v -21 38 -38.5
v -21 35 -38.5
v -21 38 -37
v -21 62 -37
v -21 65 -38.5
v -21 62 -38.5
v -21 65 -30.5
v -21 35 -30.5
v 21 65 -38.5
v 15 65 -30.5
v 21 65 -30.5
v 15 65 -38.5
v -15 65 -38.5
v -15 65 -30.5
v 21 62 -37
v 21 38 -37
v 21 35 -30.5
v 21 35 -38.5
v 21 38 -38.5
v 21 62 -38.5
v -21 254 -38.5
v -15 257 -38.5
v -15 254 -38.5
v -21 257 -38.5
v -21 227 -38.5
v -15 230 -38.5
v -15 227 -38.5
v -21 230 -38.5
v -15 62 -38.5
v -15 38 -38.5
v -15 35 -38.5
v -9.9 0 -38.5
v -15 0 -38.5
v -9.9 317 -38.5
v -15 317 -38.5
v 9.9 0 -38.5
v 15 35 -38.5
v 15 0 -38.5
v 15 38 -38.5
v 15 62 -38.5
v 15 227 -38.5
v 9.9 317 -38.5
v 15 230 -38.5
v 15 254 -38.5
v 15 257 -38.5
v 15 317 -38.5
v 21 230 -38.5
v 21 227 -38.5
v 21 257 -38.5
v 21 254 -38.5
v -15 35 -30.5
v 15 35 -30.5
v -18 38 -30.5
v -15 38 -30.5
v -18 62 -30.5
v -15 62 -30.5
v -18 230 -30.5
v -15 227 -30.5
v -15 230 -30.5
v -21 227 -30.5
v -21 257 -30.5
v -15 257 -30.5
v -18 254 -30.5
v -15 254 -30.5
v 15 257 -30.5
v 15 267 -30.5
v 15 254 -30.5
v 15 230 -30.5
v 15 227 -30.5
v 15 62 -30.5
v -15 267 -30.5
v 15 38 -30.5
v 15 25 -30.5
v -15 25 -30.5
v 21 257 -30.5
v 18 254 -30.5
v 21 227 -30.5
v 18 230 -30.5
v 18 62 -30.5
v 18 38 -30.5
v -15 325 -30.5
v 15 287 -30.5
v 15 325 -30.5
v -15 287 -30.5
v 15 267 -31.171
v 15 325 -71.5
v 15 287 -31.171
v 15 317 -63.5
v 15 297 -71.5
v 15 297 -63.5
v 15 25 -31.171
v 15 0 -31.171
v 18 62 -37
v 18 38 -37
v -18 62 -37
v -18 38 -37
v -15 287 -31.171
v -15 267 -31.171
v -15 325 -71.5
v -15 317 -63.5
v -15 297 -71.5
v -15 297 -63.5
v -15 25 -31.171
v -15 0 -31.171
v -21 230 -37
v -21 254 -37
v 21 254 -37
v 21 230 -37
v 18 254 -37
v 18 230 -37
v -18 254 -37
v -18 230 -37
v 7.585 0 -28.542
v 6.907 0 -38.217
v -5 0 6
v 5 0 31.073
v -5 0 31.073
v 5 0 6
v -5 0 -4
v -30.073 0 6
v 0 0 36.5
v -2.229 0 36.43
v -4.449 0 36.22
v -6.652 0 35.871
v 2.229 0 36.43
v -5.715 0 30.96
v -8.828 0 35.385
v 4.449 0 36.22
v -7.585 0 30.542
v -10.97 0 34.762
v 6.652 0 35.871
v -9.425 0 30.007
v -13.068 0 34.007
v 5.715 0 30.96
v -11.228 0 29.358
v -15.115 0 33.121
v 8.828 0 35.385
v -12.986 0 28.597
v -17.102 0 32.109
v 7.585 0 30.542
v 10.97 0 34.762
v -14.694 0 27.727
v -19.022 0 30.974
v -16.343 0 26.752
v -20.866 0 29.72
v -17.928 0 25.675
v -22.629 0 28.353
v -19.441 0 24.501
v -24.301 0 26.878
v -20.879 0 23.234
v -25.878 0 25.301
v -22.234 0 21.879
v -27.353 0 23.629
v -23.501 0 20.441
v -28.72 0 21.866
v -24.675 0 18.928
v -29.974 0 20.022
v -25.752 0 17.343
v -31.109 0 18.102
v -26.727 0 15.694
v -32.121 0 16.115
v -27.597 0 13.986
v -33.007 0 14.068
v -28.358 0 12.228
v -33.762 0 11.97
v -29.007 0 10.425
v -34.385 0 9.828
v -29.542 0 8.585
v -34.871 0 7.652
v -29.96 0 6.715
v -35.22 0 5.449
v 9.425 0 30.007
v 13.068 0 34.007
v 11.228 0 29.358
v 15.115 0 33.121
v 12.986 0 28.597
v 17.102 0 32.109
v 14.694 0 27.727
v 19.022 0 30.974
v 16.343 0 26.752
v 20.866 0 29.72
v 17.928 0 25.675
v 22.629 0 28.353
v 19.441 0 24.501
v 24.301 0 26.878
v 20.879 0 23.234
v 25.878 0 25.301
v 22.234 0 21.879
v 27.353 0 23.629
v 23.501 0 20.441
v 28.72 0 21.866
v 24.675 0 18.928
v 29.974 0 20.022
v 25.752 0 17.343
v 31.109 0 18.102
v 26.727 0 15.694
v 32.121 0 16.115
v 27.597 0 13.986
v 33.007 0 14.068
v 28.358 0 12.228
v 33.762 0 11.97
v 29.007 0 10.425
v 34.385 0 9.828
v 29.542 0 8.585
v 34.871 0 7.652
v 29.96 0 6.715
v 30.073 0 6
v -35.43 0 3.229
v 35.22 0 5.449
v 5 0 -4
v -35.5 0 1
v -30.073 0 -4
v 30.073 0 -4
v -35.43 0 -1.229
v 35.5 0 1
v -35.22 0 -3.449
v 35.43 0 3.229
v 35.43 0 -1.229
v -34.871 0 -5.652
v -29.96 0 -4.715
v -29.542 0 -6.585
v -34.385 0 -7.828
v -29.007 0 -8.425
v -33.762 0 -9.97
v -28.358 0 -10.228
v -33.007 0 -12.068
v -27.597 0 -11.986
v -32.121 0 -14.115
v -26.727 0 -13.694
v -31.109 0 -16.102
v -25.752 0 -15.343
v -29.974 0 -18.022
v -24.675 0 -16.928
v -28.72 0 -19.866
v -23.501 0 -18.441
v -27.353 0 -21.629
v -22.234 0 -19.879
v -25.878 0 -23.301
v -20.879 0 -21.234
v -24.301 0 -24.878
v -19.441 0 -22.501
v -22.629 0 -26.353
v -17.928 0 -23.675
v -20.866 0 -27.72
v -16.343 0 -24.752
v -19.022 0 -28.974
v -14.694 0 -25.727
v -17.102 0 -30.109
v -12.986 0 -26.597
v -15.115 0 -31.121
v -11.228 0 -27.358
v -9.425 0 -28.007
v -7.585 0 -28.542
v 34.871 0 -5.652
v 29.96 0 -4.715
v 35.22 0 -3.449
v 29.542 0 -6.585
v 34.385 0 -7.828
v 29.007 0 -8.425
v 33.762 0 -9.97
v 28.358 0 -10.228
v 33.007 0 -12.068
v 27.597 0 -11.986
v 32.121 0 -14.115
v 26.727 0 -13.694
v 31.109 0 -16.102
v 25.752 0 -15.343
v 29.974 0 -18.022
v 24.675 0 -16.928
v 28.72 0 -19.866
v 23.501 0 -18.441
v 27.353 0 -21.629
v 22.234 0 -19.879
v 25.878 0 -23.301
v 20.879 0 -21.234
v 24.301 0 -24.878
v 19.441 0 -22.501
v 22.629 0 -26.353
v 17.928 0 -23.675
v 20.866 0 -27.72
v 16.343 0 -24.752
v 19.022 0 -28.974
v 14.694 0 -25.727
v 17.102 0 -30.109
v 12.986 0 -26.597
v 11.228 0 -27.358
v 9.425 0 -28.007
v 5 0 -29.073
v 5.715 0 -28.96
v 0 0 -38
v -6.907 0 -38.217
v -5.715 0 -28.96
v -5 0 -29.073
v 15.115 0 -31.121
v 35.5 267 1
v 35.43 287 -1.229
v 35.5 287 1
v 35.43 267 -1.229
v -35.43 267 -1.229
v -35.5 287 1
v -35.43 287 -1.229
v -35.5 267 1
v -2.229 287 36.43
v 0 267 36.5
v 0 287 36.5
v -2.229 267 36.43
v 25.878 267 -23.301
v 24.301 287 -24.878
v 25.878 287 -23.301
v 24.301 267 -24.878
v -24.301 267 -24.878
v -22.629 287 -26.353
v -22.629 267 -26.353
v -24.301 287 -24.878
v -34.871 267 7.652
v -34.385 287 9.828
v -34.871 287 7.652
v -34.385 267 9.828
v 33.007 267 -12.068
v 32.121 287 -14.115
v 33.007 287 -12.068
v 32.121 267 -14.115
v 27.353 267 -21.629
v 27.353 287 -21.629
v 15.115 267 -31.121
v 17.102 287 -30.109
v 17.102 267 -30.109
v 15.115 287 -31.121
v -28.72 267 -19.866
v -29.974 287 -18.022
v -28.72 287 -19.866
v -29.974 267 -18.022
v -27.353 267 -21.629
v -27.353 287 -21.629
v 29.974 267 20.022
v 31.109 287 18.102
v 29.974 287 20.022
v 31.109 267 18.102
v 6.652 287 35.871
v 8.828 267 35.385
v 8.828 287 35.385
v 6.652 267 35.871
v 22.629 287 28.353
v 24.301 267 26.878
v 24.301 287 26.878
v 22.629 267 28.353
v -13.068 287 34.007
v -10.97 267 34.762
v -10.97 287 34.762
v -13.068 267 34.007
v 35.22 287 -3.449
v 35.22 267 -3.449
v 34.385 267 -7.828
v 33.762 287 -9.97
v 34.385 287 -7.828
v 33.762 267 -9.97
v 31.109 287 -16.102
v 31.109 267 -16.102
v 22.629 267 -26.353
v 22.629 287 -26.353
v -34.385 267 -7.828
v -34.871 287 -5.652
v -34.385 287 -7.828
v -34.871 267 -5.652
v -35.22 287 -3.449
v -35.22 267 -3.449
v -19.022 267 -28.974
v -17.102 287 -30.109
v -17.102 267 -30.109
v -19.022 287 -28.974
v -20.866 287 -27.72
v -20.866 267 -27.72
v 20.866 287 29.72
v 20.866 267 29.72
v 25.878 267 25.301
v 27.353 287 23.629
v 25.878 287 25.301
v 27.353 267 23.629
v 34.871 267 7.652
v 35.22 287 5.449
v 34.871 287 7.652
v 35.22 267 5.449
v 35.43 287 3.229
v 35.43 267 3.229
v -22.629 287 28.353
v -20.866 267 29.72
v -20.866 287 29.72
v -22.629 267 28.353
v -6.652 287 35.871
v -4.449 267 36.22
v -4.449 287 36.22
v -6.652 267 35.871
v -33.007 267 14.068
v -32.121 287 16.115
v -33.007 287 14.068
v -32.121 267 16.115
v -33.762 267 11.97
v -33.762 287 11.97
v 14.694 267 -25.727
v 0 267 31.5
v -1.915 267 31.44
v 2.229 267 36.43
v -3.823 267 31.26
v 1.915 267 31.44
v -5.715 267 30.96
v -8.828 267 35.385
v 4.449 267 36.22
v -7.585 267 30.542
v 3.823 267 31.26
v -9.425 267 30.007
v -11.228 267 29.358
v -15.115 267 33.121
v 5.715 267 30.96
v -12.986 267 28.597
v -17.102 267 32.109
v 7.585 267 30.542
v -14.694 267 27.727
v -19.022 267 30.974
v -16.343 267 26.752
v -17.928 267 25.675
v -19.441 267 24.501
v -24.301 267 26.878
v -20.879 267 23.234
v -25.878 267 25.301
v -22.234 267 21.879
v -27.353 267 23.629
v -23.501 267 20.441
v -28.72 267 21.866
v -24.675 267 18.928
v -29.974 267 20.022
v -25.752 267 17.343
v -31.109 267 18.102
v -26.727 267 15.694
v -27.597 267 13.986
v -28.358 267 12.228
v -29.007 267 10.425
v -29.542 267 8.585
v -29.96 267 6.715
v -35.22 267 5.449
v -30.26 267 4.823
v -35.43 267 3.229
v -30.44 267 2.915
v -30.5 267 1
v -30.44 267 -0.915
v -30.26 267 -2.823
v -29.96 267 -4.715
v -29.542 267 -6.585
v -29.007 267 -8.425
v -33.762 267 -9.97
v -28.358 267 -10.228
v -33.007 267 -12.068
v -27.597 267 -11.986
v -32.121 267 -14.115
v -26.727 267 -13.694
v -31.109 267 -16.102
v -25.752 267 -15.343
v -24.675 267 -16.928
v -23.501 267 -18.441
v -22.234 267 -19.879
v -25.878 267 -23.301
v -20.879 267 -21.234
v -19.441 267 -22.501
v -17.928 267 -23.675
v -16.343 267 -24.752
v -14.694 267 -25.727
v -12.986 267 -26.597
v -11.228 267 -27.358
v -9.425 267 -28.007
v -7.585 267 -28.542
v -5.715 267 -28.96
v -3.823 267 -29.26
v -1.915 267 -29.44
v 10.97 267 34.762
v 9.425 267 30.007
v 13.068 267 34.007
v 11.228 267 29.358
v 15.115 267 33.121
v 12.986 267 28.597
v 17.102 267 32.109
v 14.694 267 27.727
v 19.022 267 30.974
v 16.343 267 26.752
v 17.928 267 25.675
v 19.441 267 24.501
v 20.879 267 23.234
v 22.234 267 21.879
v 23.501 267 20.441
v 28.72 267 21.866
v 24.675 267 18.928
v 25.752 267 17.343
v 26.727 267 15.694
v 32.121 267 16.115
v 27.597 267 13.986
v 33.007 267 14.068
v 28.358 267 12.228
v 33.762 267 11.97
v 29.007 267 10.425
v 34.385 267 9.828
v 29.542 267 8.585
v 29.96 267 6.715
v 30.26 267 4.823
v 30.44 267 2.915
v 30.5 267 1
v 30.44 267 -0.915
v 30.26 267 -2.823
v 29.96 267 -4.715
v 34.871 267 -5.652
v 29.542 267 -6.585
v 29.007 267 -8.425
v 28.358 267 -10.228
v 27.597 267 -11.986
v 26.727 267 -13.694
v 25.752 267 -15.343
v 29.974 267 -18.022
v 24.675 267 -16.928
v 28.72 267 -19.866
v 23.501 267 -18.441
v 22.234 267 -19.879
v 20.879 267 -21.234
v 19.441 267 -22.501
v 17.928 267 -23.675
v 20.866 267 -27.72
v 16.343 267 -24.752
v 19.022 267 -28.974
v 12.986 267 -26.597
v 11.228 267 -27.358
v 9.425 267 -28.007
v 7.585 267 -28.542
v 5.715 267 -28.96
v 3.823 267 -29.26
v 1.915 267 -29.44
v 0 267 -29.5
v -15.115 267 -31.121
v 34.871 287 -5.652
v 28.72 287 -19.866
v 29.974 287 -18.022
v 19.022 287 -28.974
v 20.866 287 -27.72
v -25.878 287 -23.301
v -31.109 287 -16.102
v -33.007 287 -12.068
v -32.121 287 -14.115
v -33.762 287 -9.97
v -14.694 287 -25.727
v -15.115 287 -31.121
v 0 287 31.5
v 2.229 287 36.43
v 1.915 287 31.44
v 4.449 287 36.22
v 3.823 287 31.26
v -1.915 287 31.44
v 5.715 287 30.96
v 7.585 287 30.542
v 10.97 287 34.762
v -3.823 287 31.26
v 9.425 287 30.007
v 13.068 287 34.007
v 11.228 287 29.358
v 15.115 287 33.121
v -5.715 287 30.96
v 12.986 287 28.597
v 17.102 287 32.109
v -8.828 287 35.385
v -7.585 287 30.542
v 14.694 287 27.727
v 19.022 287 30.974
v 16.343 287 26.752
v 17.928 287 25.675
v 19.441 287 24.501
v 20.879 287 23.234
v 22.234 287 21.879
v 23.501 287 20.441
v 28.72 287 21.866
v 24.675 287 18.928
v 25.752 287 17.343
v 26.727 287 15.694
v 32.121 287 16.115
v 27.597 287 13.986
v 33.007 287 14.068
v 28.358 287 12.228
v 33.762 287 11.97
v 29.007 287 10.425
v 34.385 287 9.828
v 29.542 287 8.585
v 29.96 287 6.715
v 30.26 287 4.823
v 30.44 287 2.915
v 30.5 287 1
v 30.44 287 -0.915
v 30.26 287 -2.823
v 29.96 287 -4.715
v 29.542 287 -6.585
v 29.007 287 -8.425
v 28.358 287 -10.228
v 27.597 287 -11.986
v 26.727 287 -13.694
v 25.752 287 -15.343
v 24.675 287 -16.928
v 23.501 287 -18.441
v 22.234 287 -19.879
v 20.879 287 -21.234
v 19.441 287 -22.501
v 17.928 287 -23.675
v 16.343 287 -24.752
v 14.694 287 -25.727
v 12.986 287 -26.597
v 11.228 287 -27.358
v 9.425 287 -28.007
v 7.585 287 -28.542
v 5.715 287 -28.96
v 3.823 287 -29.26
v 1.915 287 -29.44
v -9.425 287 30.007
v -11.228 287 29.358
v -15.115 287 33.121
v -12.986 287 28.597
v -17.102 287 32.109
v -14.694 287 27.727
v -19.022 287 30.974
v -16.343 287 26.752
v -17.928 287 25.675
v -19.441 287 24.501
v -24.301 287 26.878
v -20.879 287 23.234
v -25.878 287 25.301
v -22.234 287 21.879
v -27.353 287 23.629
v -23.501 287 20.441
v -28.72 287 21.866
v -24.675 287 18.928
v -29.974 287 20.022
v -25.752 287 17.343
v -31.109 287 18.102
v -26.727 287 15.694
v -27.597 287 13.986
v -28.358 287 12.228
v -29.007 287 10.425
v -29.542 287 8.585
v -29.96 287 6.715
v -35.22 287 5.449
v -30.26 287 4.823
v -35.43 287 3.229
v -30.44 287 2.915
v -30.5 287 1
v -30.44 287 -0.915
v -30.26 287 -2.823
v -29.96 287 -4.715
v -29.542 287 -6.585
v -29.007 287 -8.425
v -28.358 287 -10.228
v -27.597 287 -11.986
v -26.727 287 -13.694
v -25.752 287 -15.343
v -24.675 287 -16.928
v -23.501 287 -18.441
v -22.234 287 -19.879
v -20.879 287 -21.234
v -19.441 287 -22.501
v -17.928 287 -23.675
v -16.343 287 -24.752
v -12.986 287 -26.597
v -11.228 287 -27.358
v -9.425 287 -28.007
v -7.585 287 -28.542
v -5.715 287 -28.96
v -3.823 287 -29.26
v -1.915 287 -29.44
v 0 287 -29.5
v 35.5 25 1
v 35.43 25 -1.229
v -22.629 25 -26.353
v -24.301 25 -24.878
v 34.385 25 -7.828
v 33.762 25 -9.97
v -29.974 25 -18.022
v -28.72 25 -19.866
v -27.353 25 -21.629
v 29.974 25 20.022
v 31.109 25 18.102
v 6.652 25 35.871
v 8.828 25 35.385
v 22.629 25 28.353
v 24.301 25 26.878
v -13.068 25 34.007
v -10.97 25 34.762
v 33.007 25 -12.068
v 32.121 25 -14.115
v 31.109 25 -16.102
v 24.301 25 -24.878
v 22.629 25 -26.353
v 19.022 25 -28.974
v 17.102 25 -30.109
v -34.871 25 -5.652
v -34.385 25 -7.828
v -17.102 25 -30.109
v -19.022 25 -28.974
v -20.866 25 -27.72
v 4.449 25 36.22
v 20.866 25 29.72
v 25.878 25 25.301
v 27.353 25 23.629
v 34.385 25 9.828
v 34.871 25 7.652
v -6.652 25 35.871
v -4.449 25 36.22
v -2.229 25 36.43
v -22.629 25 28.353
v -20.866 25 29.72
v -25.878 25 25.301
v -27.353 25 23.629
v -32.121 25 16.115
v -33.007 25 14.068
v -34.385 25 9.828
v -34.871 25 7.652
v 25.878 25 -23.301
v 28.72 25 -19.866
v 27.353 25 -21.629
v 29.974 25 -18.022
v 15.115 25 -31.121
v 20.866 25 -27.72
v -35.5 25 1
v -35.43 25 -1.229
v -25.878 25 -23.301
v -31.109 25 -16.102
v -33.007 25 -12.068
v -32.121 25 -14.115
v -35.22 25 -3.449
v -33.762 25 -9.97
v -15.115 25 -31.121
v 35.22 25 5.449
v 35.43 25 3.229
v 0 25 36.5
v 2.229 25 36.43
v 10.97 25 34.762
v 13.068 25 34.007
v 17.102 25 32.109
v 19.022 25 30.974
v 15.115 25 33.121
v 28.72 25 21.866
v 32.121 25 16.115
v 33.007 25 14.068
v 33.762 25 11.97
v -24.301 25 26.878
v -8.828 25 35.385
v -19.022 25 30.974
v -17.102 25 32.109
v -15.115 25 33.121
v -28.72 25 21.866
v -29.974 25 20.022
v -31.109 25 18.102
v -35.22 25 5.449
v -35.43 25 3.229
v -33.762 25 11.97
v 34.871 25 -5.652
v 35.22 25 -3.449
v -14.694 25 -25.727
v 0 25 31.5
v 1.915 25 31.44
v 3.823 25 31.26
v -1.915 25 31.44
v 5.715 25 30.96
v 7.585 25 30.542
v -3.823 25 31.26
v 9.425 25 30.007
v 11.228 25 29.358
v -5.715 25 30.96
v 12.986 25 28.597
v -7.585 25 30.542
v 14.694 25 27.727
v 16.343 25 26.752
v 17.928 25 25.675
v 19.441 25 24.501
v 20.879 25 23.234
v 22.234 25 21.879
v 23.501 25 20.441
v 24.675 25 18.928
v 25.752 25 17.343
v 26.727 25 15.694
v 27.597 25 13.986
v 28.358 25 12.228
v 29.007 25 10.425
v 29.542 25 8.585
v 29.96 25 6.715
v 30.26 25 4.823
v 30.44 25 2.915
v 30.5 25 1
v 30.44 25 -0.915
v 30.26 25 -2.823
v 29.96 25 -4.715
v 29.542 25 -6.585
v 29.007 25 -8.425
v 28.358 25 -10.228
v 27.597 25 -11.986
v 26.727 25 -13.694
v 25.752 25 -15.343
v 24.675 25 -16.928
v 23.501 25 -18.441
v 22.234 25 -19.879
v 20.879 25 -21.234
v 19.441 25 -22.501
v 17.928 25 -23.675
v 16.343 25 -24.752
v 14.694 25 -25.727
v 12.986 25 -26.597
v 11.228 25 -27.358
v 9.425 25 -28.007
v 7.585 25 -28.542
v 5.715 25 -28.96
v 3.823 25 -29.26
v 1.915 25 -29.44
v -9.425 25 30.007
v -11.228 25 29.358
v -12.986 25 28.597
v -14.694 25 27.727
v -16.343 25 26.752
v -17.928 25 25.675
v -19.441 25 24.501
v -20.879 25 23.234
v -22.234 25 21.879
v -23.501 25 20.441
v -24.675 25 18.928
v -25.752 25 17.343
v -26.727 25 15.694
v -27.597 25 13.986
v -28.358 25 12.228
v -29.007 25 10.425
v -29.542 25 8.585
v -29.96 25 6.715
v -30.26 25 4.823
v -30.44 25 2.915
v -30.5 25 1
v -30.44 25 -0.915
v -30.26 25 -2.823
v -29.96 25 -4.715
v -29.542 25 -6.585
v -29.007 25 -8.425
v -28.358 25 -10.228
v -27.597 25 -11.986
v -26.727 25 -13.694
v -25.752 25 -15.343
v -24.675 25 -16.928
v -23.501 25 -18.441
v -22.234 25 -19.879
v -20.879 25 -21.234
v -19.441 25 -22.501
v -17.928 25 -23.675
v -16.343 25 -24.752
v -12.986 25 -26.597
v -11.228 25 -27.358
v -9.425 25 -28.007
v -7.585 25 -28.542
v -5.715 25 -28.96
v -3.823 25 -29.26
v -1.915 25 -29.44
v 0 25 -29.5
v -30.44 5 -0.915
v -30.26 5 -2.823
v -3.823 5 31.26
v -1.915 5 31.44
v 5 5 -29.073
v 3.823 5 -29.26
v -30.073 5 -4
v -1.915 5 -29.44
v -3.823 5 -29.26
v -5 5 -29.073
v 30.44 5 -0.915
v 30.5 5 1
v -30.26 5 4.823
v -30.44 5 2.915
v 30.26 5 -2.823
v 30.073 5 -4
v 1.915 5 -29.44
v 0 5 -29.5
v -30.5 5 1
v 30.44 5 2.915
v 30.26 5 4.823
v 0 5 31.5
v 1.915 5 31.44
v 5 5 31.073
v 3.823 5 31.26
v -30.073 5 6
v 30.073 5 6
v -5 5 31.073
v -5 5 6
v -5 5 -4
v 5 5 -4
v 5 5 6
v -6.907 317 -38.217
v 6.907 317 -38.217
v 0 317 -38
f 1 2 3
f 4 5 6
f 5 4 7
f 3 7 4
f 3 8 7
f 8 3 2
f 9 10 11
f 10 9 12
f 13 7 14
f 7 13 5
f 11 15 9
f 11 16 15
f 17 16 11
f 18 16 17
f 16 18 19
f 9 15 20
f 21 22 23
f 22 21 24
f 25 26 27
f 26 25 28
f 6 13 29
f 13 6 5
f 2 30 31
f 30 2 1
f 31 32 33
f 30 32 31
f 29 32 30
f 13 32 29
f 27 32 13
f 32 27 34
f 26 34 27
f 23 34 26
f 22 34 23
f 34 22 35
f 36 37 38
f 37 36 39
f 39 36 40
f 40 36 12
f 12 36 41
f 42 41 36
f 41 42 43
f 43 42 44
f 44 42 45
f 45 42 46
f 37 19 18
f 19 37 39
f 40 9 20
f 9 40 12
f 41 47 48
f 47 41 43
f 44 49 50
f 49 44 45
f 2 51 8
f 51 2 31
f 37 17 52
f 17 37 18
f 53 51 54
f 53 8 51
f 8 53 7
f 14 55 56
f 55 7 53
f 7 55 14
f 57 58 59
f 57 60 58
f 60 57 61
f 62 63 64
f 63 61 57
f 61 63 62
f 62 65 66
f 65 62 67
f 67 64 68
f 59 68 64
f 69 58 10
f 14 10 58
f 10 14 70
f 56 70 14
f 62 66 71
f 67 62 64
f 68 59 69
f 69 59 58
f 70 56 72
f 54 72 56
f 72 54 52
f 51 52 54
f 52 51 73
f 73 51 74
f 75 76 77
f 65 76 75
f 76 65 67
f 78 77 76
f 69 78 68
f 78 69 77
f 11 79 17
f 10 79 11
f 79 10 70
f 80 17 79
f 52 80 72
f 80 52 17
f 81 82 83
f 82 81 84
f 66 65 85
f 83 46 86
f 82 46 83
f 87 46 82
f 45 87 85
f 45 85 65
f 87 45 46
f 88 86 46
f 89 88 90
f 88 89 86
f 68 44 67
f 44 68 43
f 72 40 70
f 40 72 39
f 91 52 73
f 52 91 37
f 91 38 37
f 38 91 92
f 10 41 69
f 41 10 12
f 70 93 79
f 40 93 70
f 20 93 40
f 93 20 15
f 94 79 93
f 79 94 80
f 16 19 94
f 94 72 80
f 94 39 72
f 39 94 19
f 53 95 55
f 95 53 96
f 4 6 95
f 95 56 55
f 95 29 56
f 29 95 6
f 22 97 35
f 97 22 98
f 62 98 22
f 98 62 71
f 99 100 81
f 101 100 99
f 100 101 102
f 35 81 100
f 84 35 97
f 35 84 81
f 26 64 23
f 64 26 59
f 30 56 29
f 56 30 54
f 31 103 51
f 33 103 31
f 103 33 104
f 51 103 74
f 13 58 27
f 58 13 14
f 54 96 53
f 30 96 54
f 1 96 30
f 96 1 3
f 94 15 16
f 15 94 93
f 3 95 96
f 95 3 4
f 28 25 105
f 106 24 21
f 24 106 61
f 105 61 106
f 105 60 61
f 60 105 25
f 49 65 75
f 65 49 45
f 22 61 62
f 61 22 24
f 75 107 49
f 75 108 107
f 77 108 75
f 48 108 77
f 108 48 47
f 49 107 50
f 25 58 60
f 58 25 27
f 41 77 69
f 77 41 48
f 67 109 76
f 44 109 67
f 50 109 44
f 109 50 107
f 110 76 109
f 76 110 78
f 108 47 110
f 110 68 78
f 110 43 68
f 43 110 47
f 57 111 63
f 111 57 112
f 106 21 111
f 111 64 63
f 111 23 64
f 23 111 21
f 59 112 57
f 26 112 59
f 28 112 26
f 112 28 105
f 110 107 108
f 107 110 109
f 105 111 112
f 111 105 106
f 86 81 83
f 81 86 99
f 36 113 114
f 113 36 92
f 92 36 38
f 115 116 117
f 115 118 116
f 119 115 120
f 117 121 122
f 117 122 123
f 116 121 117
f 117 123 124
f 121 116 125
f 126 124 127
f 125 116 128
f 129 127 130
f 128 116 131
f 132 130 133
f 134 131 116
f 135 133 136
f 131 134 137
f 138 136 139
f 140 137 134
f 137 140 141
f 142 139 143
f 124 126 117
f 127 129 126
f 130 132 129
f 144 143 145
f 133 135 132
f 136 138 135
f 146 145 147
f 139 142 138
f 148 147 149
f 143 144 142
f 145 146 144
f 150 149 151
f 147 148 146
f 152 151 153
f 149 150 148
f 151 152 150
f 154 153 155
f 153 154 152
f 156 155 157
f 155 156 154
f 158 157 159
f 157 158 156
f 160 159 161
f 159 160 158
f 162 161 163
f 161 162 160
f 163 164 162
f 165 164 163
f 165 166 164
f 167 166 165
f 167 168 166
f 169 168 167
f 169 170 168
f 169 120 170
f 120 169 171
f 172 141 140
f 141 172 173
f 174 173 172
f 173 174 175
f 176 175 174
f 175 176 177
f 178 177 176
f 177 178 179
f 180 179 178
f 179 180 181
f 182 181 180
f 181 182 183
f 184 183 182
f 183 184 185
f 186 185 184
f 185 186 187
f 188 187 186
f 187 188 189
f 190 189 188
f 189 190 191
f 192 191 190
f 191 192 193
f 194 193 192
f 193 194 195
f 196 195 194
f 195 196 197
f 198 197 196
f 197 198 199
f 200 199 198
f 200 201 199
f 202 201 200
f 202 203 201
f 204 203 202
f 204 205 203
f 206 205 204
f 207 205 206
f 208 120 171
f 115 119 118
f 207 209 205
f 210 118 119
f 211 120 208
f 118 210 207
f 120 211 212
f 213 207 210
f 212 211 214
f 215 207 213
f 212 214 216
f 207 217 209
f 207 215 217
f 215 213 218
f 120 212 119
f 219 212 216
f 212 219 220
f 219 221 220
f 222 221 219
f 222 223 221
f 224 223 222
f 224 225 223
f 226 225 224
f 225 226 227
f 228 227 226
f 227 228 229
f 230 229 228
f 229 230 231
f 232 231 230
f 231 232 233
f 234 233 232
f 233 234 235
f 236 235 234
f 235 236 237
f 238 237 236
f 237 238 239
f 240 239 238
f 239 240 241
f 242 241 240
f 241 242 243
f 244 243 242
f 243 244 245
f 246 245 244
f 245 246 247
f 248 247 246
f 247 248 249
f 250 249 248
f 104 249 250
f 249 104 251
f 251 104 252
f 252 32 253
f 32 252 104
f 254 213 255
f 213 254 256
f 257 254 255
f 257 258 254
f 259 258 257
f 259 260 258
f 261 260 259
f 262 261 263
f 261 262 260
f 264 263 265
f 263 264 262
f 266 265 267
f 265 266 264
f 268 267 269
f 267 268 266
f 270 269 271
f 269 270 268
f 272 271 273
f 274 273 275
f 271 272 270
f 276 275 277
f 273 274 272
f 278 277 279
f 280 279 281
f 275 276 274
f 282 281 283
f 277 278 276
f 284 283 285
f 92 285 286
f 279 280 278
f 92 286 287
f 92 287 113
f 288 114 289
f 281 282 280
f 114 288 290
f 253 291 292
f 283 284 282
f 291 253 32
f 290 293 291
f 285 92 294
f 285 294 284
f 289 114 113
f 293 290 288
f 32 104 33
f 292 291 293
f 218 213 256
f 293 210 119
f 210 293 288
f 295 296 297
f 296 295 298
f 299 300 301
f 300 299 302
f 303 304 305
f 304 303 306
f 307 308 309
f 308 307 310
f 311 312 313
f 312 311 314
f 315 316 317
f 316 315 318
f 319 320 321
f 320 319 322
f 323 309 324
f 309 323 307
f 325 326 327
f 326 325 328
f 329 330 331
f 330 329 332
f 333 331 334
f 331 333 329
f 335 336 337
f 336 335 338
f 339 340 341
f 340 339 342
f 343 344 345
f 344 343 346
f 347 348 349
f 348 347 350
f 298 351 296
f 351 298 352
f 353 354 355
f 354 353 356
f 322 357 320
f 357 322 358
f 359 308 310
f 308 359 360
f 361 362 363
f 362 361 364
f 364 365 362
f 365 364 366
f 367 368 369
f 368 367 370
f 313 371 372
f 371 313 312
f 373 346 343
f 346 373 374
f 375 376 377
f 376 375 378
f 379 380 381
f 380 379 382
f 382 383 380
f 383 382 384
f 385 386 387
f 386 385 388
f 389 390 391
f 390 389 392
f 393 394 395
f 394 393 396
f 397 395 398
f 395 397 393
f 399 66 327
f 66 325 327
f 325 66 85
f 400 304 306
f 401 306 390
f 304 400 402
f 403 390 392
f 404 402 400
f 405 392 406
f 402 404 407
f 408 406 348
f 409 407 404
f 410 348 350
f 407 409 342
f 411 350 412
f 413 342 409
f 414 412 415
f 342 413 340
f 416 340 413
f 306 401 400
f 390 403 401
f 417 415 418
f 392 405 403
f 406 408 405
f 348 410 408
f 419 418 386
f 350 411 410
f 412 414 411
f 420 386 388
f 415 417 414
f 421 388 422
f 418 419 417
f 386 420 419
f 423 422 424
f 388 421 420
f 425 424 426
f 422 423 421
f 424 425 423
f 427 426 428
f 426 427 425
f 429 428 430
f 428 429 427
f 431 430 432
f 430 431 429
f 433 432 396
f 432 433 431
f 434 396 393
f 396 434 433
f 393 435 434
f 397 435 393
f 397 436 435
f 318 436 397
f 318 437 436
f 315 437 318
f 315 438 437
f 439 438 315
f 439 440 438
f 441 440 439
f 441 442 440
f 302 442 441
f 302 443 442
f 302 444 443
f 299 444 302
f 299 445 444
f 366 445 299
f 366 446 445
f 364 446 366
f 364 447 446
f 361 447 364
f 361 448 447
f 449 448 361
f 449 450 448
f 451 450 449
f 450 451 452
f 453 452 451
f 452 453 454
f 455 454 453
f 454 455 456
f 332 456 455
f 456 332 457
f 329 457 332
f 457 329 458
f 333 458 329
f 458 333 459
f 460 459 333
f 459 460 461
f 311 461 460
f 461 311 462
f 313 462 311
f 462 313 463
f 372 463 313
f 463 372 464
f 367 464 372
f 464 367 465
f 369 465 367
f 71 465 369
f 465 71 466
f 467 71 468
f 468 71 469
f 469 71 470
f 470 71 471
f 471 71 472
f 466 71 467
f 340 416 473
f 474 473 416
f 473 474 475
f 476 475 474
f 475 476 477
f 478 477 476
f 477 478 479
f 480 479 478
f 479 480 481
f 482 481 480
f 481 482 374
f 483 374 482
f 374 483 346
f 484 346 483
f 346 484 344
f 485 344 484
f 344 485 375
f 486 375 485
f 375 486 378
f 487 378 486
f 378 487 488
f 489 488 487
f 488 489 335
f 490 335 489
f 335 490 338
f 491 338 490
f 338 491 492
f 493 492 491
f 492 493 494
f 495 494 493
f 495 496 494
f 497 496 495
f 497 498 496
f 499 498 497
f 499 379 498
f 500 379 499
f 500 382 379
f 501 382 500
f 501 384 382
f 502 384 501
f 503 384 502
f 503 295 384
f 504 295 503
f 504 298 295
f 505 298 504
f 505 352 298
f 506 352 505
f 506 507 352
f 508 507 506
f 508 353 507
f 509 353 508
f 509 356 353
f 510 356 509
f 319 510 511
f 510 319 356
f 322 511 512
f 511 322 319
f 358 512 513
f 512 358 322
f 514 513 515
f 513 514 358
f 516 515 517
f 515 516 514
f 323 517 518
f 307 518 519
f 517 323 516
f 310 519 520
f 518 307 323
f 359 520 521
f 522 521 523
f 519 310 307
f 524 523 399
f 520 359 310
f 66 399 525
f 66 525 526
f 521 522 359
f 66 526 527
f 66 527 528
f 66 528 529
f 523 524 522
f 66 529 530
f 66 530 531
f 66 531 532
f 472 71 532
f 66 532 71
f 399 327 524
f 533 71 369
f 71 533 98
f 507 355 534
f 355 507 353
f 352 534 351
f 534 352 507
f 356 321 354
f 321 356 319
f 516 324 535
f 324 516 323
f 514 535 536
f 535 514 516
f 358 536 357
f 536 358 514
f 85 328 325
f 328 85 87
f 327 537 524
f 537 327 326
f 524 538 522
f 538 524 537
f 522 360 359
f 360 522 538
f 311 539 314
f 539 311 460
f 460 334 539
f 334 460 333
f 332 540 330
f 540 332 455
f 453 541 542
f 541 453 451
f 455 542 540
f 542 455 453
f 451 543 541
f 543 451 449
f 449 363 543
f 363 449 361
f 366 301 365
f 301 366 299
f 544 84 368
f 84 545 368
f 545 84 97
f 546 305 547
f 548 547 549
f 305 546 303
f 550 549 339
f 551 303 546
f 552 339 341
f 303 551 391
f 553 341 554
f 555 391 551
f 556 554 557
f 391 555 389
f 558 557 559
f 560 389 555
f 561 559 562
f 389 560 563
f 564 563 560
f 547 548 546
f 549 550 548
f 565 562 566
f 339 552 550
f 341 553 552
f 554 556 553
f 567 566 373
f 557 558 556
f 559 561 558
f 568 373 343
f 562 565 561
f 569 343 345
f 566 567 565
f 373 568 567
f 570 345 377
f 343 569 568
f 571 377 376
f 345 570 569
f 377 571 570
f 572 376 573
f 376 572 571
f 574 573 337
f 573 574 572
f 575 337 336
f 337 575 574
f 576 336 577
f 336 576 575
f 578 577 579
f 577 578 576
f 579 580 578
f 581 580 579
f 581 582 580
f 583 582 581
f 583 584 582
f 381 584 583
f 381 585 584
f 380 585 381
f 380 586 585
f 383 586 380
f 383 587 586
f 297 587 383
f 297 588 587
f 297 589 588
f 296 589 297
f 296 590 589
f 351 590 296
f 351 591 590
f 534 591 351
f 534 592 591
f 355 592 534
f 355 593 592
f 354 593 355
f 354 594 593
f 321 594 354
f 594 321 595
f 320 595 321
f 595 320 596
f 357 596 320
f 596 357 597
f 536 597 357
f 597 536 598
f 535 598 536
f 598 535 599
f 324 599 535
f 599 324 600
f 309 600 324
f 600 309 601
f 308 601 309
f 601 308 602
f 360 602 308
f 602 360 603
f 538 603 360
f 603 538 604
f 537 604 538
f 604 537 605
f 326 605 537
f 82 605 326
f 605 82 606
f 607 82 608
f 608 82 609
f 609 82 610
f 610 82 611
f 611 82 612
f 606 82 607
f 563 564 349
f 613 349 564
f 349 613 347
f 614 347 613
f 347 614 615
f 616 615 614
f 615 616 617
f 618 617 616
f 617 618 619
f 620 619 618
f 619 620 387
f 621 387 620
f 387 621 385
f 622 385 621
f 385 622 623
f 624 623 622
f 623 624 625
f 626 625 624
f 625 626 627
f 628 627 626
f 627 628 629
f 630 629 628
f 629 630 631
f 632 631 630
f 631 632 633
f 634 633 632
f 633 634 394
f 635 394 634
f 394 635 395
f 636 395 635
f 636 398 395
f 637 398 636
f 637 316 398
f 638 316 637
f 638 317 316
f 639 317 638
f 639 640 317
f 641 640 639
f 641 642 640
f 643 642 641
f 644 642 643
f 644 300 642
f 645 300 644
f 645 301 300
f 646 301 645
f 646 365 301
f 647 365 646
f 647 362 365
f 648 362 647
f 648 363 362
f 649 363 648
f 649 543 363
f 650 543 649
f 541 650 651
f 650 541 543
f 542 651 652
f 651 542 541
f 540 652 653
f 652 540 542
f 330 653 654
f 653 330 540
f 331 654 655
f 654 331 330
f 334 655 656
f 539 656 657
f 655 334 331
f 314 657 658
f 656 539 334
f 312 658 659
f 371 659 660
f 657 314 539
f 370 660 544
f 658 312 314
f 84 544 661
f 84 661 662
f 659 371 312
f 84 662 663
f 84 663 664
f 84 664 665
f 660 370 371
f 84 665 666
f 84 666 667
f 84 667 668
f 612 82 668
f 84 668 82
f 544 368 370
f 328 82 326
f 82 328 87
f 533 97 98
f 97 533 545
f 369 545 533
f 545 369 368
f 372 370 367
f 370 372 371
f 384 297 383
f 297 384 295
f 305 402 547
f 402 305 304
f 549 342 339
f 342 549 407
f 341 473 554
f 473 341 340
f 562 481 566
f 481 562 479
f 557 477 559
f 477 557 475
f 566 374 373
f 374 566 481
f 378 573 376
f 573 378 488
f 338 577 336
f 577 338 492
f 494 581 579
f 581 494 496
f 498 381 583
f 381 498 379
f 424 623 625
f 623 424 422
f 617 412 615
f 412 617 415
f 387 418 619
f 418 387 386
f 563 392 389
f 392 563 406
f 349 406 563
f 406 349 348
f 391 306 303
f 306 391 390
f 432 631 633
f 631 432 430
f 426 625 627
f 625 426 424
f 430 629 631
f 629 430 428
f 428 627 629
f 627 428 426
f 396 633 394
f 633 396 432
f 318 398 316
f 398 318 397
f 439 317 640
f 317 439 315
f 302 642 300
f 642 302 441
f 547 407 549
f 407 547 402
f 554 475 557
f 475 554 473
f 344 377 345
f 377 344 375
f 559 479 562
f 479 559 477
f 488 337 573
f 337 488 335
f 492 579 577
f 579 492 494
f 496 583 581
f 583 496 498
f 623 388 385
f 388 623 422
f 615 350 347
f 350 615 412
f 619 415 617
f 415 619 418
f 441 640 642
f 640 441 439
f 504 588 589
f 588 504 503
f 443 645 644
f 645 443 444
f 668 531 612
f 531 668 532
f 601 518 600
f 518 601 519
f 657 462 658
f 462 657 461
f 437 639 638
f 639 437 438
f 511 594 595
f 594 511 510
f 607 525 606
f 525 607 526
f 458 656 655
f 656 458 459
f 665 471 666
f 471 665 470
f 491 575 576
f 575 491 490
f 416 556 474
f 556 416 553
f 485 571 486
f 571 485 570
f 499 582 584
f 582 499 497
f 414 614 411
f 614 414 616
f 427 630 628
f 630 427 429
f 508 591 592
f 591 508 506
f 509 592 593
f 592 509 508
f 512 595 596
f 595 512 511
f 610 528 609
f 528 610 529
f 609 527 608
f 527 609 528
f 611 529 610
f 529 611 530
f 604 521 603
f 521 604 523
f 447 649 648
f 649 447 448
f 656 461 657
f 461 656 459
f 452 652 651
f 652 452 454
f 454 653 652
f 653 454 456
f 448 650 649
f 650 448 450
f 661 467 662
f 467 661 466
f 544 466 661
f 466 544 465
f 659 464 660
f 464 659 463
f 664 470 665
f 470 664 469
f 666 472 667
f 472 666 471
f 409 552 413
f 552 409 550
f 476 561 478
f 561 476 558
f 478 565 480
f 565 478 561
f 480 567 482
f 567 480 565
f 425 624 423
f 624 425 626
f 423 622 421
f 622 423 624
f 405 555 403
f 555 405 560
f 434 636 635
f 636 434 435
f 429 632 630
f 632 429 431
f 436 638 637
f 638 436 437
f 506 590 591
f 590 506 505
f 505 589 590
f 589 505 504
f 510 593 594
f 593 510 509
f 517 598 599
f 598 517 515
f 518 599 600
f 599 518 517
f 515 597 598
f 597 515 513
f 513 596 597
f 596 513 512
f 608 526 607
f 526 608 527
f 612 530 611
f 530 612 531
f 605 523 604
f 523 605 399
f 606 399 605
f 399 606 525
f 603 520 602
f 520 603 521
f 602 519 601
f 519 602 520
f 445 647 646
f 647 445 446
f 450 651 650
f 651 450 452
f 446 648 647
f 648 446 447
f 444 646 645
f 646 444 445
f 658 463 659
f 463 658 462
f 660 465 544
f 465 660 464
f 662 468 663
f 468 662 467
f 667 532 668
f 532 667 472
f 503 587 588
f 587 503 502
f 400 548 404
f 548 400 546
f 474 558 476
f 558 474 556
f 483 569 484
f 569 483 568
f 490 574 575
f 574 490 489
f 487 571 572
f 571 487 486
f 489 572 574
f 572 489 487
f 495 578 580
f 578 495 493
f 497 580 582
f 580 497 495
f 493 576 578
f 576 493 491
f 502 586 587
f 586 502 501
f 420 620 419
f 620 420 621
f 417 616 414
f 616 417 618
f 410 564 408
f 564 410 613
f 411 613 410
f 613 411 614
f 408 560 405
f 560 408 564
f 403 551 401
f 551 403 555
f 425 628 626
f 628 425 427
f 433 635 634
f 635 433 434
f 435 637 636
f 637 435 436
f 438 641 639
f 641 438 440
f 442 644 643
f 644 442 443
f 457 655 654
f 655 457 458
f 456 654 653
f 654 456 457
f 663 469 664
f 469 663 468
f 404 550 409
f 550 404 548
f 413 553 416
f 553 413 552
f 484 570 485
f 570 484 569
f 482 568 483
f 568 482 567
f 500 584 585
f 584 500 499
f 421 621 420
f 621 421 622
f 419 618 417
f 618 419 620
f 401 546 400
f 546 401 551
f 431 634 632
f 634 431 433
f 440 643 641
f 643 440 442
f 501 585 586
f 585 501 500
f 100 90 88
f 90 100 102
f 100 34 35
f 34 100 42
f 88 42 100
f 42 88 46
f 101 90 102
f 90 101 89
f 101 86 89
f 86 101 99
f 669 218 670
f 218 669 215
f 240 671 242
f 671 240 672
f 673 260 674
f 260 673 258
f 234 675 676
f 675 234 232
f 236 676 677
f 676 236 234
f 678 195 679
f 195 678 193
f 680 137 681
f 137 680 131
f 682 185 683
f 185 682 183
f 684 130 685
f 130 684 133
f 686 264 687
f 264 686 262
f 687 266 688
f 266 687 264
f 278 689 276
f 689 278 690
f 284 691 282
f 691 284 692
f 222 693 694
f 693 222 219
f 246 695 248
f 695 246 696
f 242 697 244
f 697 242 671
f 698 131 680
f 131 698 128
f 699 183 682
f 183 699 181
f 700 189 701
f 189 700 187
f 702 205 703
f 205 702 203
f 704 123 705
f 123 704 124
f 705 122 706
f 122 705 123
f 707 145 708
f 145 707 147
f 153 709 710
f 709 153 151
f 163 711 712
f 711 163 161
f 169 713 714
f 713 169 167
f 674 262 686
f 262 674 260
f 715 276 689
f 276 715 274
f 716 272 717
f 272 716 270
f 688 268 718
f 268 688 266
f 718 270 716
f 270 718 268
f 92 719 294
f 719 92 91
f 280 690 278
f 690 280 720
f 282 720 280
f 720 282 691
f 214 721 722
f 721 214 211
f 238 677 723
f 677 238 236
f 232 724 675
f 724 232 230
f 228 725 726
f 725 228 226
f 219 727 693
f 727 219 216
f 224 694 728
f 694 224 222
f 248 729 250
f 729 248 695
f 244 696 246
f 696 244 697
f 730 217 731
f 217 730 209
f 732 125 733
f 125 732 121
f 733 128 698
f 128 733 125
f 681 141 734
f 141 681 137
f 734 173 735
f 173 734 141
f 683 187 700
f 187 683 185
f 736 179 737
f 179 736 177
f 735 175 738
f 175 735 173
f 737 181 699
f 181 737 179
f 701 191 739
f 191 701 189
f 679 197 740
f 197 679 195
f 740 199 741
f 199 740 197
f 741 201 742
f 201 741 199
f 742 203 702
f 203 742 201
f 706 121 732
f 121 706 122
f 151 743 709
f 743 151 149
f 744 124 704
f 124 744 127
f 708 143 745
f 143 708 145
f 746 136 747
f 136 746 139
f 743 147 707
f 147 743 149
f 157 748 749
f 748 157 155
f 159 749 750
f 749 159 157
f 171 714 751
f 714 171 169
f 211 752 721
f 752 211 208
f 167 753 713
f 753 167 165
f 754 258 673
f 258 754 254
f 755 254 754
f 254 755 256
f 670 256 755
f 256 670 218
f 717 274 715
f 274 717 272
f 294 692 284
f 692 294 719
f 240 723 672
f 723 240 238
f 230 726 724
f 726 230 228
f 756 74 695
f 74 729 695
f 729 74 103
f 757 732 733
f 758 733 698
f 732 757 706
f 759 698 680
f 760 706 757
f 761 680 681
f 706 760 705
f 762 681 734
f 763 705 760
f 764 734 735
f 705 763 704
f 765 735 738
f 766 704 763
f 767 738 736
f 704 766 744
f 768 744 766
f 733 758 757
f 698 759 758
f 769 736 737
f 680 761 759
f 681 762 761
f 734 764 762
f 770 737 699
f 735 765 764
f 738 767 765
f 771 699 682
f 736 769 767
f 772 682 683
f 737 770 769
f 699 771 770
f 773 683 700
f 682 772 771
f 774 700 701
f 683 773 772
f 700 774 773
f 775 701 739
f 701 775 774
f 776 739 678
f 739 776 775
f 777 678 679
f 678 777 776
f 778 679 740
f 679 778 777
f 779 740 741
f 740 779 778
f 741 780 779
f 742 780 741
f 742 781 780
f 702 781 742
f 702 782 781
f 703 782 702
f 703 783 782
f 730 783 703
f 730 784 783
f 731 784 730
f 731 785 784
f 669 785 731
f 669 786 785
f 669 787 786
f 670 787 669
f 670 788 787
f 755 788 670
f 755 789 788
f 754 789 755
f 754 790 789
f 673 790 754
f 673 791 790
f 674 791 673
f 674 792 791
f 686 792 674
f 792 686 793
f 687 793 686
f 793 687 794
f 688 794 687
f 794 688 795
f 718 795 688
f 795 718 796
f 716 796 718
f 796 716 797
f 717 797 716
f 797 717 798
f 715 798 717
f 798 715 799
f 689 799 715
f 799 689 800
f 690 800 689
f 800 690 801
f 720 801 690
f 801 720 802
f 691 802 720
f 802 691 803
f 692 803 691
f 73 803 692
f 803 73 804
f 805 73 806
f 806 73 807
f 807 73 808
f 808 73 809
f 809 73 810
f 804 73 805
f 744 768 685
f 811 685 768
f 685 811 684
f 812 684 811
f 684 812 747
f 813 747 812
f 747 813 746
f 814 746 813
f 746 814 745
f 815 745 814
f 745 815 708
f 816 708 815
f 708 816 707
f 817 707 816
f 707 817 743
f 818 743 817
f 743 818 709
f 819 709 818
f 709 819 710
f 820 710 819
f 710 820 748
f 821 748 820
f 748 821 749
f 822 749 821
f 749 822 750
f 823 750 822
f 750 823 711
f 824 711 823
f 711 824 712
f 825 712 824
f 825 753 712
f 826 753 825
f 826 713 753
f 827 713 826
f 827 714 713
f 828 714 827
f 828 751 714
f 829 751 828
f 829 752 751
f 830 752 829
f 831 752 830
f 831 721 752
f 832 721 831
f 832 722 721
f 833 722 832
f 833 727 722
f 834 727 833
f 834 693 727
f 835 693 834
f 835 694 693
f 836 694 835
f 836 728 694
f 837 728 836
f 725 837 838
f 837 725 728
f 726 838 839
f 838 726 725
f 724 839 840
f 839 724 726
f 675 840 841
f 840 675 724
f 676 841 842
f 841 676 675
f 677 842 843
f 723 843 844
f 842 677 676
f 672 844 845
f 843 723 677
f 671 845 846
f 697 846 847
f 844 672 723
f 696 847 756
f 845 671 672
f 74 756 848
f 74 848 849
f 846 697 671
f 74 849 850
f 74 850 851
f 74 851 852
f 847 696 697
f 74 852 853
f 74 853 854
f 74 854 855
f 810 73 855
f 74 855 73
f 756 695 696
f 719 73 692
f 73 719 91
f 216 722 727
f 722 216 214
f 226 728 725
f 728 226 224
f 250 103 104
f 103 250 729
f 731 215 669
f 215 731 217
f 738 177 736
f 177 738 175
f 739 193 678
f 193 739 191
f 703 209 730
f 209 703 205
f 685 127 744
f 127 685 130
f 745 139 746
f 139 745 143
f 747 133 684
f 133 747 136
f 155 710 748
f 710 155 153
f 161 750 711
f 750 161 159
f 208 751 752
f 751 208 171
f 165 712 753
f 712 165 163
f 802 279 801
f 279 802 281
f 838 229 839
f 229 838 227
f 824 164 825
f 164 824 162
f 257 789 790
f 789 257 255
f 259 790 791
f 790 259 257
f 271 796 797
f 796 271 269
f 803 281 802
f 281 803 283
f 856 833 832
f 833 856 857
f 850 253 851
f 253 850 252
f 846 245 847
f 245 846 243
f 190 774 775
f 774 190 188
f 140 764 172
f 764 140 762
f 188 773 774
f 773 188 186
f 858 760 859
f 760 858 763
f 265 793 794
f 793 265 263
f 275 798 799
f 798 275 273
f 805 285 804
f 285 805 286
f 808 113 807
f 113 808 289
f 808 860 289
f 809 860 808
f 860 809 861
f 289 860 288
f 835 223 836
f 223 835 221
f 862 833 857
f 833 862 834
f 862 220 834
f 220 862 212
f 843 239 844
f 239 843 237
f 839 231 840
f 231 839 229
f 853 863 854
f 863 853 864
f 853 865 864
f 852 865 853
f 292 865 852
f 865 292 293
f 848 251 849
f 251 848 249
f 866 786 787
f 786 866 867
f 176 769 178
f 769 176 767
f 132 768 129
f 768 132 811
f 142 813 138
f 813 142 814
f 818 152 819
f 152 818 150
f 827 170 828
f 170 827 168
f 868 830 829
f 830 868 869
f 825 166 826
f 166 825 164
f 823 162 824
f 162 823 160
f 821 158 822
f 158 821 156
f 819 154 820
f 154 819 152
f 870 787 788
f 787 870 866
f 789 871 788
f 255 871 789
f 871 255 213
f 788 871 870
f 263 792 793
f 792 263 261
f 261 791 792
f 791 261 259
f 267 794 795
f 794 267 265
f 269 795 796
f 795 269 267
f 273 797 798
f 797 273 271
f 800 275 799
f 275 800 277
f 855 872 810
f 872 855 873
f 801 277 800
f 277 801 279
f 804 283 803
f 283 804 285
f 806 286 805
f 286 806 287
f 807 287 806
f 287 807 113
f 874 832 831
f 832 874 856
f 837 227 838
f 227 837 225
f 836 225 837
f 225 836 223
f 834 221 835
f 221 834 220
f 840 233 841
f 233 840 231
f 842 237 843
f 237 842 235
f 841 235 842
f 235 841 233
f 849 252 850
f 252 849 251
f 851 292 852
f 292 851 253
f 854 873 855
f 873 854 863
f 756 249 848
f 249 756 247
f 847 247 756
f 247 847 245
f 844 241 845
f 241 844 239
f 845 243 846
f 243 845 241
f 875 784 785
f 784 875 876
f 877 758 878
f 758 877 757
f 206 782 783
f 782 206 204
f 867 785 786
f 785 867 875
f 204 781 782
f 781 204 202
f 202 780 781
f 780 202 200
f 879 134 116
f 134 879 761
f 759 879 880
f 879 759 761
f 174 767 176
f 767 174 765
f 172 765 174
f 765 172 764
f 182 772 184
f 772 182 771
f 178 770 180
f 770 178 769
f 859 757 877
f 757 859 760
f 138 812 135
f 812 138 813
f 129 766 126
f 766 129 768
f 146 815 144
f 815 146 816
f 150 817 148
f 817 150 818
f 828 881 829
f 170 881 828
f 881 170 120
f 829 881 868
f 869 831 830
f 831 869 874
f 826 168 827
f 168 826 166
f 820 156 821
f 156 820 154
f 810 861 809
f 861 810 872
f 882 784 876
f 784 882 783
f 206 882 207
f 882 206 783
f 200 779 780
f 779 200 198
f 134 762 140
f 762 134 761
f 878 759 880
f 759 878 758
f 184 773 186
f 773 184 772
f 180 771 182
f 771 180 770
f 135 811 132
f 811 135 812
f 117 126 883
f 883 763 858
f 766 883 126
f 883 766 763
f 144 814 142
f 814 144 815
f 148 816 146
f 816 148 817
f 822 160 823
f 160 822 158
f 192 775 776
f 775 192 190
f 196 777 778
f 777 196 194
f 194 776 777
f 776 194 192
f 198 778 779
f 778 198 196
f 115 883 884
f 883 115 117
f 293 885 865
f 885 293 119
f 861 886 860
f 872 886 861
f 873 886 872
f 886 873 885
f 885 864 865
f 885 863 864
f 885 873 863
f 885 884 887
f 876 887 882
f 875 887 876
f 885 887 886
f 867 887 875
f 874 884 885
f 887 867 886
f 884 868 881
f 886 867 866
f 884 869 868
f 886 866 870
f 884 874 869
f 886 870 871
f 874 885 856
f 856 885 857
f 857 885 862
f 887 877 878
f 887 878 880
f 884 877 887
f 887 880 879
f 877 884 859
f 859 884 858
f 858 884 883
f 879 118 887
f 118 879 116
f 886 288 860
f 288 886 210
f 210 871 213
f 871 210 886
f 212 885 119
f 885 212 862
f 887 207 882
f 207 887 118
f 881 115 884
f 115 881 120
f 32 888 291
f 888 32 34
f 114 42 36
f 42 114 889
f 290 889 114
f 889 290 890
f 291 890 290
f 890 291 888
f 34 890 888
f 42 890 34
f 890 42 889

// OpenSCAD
// Customizable Sodastream bottle holder for Cornelius kegs
// Copyright: Olle Johansson 2018
// License: CC BY-SA

//CUSTOMIZER VARIABLES

/* [Holder] */

// Thickness in mm of the holder connecting the collars
thickness_of_holder = 8; // [5:10]

// Width in mm of the holder connecting the collars
width_of_holder = 30; // [10:50]

// This is the total height in mm of the holder
height_of_holder = 325; // [175:350]

/* [Collars] */

// The height in mm of each collar around the Sodastream bottle
height_of_collars = 20; // [10:50]

// Thickness in mm of collar walls
thickness_of_collars = 5; // [3:10]

// Thickness in mm of the cross at the bottom of the base collar
thickness_of_bottom = 5; // [3:10]

// Width in mm of the Sodastream bottle
inner_width_of_collars = 60; // [60:70]

/* [Hook] */

// Depth in mm of the hook at the top
depth_of_hook = 25; // [10:40]

// Height in mm of the hook from the top
height_of_hook = 20; // [5:30]

/* [Buckles] */

// Height in mm of the strap buckles
height_of_buckle = 30; // [20:50]

//CUSTOMIZER VARIABLES END

/* [Hidden] */

$fn=100;

BASE_WIDTH = inner_width_of_collars + 1; // Adding some tolerance
BASE_HEIGHT = height_of_collars;

THICKNESS_WALL = thickness_of_collars;
THICKNESS_BASE = thickness_of_bottom;

OUTER_DIAMETER = BASE_WIDTH + THICKNESS_WALL * 2;

BASE_SUPPORT_WIDTH = 10;
CUT_SPACING = 10;

HOOK_DEPTH = depth_of_hook;
HOOK_HEIGHT = height_of_hook;

HOLDER_THICKNESS = thickness_of_holder;
HOLDER_HEIGHT = height_of_holder;
//HOLDER_HEIGHT = 280 + THICKNESS_BASE + HOLDER_THICKNESS + HOOK_HEIGHT + CUT_SPACING;
HOLDER_WIDTH = width_of_holder;
HOLDER_POSITION = BASE_WIDTH / 2 + HOLDER_THICKNESS / 2;

KEG_RADIUS = 110;

COLLAR_HEIGHT = height_of_collars;

STRAP_BUCKLE_HEIGHT = height_of_buckle;
STRAP_BUCKLE_WALL = 3;
STRAP_THICKNESS = 3;
STRAP_WIDTH = STRAP_BUCKLE_HEIGHT - STRAP_BUCKLE_WALL * 2;
STRAP_BUCKLE_WIDTH = HOLDER_WIDTH + STRAP_THICKNESS * 2 + STRAP_BUCKLE_WALL * 2;
LOWER_BUCKLE_POSITION = BASE_HEIGHT + THICKNESS_BASE + STRAP_BUCKLE_HEIGHT / 2 + CUT_SPACING;
UPPER_BUCKLE_POSITION = HOLDER_HEIGHT - HOLDER_THICKNESS - HOOK_HEIGHT - COLLAR_HEIGHT - STRAP_BUCKLE_HEIGHT / 2 - CUT_SPACING * 2;

// Hanger
module hanger() {
    translate([0, HOLDER_POSITION, HOLDER_HEIGHT / 2]) {
        cube(size = [HOLDER_WIDTH, HOLDER_THICKNESS, HOLDER_HEIGHT], center = true);
    }
    
    // Lower strap buckle
    translate([0, HOLDER_POSITION, LOWER_BUCKLE_POSITION]) {
        strap_buckle();
    }

    // Upper strap buckle
    translate([0, HOLDER_POSITION, UPPER_BUCKLE_POSITION]) {
        strap_buckle();
    }
}

module base() {
    // Collar
    difference() {
        cylinder(h=THICKNESS_BASE + BASE_HEIGHT, d=OUTER_DIAMETER);
        
        cylinder(h=BASE_HEIGHT + BASE_HEIGHT, d=BASE_WIDTH);
     }
    
    // Base supports
    translate([0, 0, THICKNESS_BASE / 2]) {
        cube([BASE_SUPPORT_WIDTH, BASE_WIDTH + THICKNESS_WALL, THICKNESS_BASE], center=true);
        rotate([0, 0, 90])
            cube([BASE_SUPPORT_WIDTH, BASE_WIDTH + THICKNESS_WALL, THICKNESS_BASE], center=true);
    }
}

module collar() {
    translate([0, 0, HOLDER_HEIGHT - COLLAR_HEIGHT - HOOK_HEIGHT - HOLDER_THICKNESS - CUT_SPACING]) {
        
        difference() {
            cylinder(h=COLLAR_HEIGHT, d=OUTER_DIAMETER);
            
            cylinder(h=COLLAR_HEIGHT, d=BASE_WIDTH);
        }
    }    
}

module strap_buckle() {
    difference() {
        cube([STRAP_BUCKLE_WIDTH, HOLDER_THICKNESS, STRAP_BUCKLE_HEIGHT], center=true);

        // Strap holes
        translate([HOLDER_WIDTH / 2 + STRAP_THICKNESS / 2, 0, 0]) {
            cube([STRAP_THICKNESS, HOLDER_THICKNESS, STRAP_WIDTH], center = true);
        }
        translate([0 - (HOLDER_WIDTH / 2 + STRAP_THICKNESS / 2), 0, 0 ]) {
            cube([STRAP_THICKNESS, HOLDER_THICKNESS, STRAP_WIDTH], center = true);
        }
        
        // Make room for straps behind buckle
        strap_hole_pos = HOLDER_THICKNESS / 2 - STRAP_THICKNESS / 2 + 1;
        translate([HOLDER_WIDTH / 2 + STRAP_THICKNESS, strap_hole_pos, 0]) {
            cube([STRAP_BUCKLE_WALL * 2, 2, STRAP_WIDTH], center = true);
        }
        translate([0 - (HOLDER_WIDTH / 2 + STRAP_THICKNESS), strap_hole_pos, 0]) {
            cube([STRAP_BUCKLE_WALL * 2, 2, STRAP_WIDTH], center = true);
        }
    }
}

module hook() {
    // Horizontal lip
    translate([0, (BASE_WIDTH + HOOK_DEPTH) / 2 + HOLDER_THICKNESS, HOLDER_HEIGHT - HOLDER_THICKNESS / 2]) {
        cube([HOLDER_WIDTH, HOOK_DEPTH, HOLDER_THICKNESS], center = true);
    }
    
    // Vertical hook
    translate([0, BASE_WIDTH / 2 + HOOK_DEPTH + HOLDER_THICKNESS * 1.5, HOLDER_HEIGHT - HOOK_HEIGHT / 2 - HOLDER_THICKNESS / 2]) {
        cube([HOLDER_WIDTH, HOLDER_THICKNESS, HOOK_HEIGHT + HOLDER_THICKNESS], true);
    } 
}

module holder() {
    hanger();
    translate([0, -1, 0]) base();
    translate([0, -1, 0]) collar();
}

module drawHolder() {
    // Curved back of holder
    difference() {
        holder();
        
        // Make back rounded to fit keg
        translate([0, BASE_WIDTH / 2 + HOLDER_THICKNESS + KEG_RADIUS - 0.5, 0]) {
            cylinder(h=HOLDER_HEIGHT - HOLDER_THICKNESS, r=KEG_RADIUS, center=false);
        }
    }

    // Add hook (outside of holder, to not be in the way for the curved back)
    hook();
}

module rotatedHolder() {
    //translate([0, 0, - OUTER_DIAMETER / 2])
        rotate([-90, 0, 0])
            drawHolder();
}

rotatedHolder();
//drawHolder();
